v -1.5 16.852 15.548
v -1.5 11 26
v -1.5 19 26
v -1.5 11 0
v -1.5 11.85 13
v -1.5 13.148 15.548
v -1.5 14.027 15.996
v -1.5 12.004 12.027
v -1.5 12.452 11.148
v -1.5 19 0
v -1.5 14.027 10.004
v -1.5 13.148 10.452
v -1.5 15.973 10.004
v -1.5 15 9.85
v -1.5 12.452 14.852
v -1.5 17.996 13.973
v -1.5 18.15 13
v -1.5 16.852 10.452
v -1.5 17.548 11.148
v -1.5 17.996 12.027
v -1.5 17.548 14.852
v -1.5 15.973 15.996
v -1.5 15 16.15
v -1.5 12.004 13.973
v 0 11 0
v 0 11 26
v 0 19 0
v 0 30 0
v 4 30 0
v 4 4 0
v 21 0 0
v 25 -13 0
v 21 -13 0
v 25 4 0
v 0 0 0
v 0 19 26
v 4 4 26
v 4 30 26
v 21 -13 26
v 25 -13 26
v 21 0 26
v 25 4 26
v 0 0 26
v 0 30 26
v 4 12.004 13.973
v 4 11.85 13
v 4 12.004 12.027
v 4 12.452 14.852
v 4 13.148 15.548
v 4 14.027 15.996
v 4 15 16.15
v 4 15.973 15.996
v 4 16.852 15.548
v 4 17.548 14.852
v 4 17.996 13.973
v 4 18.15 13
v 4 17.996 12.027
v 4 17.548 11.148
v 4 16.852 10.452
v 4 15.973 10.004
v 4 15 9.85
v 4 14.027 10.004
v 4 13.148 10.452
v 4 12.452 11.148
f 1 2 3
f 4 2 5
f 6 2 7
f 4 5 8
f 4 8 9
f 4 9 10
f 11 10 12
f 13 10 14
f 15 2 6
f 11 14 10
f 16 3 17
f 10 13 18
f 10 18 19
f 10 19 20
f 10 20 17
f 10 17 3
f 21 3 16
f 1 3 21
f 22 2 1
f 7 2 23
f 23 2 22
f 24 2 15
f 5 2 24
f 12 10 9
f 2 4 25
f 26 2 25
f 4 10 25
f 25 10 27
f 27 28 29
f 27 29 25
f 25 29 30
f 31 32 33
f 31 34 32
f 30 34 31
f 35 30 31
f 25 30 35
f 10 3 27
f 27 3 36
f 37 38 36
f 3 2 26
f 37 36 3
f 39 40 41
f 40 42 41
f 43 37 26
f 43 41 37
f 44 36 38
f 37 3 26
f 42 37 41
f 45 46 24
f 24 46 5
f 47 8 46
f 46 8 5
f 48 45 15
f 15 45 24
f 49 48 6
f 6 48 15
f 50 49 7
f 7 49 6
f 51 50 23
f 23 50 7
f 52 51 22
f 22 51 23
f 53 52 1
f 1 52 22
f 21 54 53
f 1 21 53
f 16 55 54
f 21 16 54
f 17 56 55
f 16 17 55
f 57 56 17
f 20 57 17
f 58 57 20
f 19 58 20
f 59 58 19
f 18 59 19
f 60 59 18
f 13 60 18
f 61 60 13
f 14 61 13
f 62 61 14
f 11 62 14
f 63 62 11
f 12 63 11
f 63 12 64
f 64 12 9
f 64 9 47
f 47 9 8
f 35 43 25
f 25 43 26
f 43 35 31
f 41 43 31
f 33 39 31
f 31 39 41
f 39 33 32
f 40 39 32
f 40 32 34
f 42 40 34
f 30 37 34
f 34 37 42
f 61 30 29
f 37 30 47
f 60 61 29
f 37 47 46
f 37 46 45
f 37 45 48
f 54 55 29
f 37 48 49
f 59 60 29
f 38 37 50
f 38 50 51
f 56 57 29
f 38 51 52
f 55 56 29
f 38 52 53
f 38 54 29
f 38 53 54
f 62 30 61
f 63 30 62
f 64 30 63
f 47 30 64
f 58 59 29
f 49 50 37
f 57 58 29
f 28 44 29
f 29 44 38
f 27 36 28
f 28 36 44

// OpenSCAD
// RebeliX
//
// corner coupler
// GNU GPL v3
// Martin Neruda <neruda@reprap4u.cz>
// http://www.reprap4u.cz
// Inspired by Rebel II

// Postacuji i 4 mm
base_thickness = 4;


difference(){
union(){
cube([base_thickness,30,26]);
translate([-1.5,30/2-4])cube([1.5,8,26]);
cube([25,4,26]);
translate([25-4,-13])cube([4,13,26]);
}
translate([-2,30/2,26/2])rotate([0,90])#cylinder(r=6.3/2,h=8,$fn=20);
}
